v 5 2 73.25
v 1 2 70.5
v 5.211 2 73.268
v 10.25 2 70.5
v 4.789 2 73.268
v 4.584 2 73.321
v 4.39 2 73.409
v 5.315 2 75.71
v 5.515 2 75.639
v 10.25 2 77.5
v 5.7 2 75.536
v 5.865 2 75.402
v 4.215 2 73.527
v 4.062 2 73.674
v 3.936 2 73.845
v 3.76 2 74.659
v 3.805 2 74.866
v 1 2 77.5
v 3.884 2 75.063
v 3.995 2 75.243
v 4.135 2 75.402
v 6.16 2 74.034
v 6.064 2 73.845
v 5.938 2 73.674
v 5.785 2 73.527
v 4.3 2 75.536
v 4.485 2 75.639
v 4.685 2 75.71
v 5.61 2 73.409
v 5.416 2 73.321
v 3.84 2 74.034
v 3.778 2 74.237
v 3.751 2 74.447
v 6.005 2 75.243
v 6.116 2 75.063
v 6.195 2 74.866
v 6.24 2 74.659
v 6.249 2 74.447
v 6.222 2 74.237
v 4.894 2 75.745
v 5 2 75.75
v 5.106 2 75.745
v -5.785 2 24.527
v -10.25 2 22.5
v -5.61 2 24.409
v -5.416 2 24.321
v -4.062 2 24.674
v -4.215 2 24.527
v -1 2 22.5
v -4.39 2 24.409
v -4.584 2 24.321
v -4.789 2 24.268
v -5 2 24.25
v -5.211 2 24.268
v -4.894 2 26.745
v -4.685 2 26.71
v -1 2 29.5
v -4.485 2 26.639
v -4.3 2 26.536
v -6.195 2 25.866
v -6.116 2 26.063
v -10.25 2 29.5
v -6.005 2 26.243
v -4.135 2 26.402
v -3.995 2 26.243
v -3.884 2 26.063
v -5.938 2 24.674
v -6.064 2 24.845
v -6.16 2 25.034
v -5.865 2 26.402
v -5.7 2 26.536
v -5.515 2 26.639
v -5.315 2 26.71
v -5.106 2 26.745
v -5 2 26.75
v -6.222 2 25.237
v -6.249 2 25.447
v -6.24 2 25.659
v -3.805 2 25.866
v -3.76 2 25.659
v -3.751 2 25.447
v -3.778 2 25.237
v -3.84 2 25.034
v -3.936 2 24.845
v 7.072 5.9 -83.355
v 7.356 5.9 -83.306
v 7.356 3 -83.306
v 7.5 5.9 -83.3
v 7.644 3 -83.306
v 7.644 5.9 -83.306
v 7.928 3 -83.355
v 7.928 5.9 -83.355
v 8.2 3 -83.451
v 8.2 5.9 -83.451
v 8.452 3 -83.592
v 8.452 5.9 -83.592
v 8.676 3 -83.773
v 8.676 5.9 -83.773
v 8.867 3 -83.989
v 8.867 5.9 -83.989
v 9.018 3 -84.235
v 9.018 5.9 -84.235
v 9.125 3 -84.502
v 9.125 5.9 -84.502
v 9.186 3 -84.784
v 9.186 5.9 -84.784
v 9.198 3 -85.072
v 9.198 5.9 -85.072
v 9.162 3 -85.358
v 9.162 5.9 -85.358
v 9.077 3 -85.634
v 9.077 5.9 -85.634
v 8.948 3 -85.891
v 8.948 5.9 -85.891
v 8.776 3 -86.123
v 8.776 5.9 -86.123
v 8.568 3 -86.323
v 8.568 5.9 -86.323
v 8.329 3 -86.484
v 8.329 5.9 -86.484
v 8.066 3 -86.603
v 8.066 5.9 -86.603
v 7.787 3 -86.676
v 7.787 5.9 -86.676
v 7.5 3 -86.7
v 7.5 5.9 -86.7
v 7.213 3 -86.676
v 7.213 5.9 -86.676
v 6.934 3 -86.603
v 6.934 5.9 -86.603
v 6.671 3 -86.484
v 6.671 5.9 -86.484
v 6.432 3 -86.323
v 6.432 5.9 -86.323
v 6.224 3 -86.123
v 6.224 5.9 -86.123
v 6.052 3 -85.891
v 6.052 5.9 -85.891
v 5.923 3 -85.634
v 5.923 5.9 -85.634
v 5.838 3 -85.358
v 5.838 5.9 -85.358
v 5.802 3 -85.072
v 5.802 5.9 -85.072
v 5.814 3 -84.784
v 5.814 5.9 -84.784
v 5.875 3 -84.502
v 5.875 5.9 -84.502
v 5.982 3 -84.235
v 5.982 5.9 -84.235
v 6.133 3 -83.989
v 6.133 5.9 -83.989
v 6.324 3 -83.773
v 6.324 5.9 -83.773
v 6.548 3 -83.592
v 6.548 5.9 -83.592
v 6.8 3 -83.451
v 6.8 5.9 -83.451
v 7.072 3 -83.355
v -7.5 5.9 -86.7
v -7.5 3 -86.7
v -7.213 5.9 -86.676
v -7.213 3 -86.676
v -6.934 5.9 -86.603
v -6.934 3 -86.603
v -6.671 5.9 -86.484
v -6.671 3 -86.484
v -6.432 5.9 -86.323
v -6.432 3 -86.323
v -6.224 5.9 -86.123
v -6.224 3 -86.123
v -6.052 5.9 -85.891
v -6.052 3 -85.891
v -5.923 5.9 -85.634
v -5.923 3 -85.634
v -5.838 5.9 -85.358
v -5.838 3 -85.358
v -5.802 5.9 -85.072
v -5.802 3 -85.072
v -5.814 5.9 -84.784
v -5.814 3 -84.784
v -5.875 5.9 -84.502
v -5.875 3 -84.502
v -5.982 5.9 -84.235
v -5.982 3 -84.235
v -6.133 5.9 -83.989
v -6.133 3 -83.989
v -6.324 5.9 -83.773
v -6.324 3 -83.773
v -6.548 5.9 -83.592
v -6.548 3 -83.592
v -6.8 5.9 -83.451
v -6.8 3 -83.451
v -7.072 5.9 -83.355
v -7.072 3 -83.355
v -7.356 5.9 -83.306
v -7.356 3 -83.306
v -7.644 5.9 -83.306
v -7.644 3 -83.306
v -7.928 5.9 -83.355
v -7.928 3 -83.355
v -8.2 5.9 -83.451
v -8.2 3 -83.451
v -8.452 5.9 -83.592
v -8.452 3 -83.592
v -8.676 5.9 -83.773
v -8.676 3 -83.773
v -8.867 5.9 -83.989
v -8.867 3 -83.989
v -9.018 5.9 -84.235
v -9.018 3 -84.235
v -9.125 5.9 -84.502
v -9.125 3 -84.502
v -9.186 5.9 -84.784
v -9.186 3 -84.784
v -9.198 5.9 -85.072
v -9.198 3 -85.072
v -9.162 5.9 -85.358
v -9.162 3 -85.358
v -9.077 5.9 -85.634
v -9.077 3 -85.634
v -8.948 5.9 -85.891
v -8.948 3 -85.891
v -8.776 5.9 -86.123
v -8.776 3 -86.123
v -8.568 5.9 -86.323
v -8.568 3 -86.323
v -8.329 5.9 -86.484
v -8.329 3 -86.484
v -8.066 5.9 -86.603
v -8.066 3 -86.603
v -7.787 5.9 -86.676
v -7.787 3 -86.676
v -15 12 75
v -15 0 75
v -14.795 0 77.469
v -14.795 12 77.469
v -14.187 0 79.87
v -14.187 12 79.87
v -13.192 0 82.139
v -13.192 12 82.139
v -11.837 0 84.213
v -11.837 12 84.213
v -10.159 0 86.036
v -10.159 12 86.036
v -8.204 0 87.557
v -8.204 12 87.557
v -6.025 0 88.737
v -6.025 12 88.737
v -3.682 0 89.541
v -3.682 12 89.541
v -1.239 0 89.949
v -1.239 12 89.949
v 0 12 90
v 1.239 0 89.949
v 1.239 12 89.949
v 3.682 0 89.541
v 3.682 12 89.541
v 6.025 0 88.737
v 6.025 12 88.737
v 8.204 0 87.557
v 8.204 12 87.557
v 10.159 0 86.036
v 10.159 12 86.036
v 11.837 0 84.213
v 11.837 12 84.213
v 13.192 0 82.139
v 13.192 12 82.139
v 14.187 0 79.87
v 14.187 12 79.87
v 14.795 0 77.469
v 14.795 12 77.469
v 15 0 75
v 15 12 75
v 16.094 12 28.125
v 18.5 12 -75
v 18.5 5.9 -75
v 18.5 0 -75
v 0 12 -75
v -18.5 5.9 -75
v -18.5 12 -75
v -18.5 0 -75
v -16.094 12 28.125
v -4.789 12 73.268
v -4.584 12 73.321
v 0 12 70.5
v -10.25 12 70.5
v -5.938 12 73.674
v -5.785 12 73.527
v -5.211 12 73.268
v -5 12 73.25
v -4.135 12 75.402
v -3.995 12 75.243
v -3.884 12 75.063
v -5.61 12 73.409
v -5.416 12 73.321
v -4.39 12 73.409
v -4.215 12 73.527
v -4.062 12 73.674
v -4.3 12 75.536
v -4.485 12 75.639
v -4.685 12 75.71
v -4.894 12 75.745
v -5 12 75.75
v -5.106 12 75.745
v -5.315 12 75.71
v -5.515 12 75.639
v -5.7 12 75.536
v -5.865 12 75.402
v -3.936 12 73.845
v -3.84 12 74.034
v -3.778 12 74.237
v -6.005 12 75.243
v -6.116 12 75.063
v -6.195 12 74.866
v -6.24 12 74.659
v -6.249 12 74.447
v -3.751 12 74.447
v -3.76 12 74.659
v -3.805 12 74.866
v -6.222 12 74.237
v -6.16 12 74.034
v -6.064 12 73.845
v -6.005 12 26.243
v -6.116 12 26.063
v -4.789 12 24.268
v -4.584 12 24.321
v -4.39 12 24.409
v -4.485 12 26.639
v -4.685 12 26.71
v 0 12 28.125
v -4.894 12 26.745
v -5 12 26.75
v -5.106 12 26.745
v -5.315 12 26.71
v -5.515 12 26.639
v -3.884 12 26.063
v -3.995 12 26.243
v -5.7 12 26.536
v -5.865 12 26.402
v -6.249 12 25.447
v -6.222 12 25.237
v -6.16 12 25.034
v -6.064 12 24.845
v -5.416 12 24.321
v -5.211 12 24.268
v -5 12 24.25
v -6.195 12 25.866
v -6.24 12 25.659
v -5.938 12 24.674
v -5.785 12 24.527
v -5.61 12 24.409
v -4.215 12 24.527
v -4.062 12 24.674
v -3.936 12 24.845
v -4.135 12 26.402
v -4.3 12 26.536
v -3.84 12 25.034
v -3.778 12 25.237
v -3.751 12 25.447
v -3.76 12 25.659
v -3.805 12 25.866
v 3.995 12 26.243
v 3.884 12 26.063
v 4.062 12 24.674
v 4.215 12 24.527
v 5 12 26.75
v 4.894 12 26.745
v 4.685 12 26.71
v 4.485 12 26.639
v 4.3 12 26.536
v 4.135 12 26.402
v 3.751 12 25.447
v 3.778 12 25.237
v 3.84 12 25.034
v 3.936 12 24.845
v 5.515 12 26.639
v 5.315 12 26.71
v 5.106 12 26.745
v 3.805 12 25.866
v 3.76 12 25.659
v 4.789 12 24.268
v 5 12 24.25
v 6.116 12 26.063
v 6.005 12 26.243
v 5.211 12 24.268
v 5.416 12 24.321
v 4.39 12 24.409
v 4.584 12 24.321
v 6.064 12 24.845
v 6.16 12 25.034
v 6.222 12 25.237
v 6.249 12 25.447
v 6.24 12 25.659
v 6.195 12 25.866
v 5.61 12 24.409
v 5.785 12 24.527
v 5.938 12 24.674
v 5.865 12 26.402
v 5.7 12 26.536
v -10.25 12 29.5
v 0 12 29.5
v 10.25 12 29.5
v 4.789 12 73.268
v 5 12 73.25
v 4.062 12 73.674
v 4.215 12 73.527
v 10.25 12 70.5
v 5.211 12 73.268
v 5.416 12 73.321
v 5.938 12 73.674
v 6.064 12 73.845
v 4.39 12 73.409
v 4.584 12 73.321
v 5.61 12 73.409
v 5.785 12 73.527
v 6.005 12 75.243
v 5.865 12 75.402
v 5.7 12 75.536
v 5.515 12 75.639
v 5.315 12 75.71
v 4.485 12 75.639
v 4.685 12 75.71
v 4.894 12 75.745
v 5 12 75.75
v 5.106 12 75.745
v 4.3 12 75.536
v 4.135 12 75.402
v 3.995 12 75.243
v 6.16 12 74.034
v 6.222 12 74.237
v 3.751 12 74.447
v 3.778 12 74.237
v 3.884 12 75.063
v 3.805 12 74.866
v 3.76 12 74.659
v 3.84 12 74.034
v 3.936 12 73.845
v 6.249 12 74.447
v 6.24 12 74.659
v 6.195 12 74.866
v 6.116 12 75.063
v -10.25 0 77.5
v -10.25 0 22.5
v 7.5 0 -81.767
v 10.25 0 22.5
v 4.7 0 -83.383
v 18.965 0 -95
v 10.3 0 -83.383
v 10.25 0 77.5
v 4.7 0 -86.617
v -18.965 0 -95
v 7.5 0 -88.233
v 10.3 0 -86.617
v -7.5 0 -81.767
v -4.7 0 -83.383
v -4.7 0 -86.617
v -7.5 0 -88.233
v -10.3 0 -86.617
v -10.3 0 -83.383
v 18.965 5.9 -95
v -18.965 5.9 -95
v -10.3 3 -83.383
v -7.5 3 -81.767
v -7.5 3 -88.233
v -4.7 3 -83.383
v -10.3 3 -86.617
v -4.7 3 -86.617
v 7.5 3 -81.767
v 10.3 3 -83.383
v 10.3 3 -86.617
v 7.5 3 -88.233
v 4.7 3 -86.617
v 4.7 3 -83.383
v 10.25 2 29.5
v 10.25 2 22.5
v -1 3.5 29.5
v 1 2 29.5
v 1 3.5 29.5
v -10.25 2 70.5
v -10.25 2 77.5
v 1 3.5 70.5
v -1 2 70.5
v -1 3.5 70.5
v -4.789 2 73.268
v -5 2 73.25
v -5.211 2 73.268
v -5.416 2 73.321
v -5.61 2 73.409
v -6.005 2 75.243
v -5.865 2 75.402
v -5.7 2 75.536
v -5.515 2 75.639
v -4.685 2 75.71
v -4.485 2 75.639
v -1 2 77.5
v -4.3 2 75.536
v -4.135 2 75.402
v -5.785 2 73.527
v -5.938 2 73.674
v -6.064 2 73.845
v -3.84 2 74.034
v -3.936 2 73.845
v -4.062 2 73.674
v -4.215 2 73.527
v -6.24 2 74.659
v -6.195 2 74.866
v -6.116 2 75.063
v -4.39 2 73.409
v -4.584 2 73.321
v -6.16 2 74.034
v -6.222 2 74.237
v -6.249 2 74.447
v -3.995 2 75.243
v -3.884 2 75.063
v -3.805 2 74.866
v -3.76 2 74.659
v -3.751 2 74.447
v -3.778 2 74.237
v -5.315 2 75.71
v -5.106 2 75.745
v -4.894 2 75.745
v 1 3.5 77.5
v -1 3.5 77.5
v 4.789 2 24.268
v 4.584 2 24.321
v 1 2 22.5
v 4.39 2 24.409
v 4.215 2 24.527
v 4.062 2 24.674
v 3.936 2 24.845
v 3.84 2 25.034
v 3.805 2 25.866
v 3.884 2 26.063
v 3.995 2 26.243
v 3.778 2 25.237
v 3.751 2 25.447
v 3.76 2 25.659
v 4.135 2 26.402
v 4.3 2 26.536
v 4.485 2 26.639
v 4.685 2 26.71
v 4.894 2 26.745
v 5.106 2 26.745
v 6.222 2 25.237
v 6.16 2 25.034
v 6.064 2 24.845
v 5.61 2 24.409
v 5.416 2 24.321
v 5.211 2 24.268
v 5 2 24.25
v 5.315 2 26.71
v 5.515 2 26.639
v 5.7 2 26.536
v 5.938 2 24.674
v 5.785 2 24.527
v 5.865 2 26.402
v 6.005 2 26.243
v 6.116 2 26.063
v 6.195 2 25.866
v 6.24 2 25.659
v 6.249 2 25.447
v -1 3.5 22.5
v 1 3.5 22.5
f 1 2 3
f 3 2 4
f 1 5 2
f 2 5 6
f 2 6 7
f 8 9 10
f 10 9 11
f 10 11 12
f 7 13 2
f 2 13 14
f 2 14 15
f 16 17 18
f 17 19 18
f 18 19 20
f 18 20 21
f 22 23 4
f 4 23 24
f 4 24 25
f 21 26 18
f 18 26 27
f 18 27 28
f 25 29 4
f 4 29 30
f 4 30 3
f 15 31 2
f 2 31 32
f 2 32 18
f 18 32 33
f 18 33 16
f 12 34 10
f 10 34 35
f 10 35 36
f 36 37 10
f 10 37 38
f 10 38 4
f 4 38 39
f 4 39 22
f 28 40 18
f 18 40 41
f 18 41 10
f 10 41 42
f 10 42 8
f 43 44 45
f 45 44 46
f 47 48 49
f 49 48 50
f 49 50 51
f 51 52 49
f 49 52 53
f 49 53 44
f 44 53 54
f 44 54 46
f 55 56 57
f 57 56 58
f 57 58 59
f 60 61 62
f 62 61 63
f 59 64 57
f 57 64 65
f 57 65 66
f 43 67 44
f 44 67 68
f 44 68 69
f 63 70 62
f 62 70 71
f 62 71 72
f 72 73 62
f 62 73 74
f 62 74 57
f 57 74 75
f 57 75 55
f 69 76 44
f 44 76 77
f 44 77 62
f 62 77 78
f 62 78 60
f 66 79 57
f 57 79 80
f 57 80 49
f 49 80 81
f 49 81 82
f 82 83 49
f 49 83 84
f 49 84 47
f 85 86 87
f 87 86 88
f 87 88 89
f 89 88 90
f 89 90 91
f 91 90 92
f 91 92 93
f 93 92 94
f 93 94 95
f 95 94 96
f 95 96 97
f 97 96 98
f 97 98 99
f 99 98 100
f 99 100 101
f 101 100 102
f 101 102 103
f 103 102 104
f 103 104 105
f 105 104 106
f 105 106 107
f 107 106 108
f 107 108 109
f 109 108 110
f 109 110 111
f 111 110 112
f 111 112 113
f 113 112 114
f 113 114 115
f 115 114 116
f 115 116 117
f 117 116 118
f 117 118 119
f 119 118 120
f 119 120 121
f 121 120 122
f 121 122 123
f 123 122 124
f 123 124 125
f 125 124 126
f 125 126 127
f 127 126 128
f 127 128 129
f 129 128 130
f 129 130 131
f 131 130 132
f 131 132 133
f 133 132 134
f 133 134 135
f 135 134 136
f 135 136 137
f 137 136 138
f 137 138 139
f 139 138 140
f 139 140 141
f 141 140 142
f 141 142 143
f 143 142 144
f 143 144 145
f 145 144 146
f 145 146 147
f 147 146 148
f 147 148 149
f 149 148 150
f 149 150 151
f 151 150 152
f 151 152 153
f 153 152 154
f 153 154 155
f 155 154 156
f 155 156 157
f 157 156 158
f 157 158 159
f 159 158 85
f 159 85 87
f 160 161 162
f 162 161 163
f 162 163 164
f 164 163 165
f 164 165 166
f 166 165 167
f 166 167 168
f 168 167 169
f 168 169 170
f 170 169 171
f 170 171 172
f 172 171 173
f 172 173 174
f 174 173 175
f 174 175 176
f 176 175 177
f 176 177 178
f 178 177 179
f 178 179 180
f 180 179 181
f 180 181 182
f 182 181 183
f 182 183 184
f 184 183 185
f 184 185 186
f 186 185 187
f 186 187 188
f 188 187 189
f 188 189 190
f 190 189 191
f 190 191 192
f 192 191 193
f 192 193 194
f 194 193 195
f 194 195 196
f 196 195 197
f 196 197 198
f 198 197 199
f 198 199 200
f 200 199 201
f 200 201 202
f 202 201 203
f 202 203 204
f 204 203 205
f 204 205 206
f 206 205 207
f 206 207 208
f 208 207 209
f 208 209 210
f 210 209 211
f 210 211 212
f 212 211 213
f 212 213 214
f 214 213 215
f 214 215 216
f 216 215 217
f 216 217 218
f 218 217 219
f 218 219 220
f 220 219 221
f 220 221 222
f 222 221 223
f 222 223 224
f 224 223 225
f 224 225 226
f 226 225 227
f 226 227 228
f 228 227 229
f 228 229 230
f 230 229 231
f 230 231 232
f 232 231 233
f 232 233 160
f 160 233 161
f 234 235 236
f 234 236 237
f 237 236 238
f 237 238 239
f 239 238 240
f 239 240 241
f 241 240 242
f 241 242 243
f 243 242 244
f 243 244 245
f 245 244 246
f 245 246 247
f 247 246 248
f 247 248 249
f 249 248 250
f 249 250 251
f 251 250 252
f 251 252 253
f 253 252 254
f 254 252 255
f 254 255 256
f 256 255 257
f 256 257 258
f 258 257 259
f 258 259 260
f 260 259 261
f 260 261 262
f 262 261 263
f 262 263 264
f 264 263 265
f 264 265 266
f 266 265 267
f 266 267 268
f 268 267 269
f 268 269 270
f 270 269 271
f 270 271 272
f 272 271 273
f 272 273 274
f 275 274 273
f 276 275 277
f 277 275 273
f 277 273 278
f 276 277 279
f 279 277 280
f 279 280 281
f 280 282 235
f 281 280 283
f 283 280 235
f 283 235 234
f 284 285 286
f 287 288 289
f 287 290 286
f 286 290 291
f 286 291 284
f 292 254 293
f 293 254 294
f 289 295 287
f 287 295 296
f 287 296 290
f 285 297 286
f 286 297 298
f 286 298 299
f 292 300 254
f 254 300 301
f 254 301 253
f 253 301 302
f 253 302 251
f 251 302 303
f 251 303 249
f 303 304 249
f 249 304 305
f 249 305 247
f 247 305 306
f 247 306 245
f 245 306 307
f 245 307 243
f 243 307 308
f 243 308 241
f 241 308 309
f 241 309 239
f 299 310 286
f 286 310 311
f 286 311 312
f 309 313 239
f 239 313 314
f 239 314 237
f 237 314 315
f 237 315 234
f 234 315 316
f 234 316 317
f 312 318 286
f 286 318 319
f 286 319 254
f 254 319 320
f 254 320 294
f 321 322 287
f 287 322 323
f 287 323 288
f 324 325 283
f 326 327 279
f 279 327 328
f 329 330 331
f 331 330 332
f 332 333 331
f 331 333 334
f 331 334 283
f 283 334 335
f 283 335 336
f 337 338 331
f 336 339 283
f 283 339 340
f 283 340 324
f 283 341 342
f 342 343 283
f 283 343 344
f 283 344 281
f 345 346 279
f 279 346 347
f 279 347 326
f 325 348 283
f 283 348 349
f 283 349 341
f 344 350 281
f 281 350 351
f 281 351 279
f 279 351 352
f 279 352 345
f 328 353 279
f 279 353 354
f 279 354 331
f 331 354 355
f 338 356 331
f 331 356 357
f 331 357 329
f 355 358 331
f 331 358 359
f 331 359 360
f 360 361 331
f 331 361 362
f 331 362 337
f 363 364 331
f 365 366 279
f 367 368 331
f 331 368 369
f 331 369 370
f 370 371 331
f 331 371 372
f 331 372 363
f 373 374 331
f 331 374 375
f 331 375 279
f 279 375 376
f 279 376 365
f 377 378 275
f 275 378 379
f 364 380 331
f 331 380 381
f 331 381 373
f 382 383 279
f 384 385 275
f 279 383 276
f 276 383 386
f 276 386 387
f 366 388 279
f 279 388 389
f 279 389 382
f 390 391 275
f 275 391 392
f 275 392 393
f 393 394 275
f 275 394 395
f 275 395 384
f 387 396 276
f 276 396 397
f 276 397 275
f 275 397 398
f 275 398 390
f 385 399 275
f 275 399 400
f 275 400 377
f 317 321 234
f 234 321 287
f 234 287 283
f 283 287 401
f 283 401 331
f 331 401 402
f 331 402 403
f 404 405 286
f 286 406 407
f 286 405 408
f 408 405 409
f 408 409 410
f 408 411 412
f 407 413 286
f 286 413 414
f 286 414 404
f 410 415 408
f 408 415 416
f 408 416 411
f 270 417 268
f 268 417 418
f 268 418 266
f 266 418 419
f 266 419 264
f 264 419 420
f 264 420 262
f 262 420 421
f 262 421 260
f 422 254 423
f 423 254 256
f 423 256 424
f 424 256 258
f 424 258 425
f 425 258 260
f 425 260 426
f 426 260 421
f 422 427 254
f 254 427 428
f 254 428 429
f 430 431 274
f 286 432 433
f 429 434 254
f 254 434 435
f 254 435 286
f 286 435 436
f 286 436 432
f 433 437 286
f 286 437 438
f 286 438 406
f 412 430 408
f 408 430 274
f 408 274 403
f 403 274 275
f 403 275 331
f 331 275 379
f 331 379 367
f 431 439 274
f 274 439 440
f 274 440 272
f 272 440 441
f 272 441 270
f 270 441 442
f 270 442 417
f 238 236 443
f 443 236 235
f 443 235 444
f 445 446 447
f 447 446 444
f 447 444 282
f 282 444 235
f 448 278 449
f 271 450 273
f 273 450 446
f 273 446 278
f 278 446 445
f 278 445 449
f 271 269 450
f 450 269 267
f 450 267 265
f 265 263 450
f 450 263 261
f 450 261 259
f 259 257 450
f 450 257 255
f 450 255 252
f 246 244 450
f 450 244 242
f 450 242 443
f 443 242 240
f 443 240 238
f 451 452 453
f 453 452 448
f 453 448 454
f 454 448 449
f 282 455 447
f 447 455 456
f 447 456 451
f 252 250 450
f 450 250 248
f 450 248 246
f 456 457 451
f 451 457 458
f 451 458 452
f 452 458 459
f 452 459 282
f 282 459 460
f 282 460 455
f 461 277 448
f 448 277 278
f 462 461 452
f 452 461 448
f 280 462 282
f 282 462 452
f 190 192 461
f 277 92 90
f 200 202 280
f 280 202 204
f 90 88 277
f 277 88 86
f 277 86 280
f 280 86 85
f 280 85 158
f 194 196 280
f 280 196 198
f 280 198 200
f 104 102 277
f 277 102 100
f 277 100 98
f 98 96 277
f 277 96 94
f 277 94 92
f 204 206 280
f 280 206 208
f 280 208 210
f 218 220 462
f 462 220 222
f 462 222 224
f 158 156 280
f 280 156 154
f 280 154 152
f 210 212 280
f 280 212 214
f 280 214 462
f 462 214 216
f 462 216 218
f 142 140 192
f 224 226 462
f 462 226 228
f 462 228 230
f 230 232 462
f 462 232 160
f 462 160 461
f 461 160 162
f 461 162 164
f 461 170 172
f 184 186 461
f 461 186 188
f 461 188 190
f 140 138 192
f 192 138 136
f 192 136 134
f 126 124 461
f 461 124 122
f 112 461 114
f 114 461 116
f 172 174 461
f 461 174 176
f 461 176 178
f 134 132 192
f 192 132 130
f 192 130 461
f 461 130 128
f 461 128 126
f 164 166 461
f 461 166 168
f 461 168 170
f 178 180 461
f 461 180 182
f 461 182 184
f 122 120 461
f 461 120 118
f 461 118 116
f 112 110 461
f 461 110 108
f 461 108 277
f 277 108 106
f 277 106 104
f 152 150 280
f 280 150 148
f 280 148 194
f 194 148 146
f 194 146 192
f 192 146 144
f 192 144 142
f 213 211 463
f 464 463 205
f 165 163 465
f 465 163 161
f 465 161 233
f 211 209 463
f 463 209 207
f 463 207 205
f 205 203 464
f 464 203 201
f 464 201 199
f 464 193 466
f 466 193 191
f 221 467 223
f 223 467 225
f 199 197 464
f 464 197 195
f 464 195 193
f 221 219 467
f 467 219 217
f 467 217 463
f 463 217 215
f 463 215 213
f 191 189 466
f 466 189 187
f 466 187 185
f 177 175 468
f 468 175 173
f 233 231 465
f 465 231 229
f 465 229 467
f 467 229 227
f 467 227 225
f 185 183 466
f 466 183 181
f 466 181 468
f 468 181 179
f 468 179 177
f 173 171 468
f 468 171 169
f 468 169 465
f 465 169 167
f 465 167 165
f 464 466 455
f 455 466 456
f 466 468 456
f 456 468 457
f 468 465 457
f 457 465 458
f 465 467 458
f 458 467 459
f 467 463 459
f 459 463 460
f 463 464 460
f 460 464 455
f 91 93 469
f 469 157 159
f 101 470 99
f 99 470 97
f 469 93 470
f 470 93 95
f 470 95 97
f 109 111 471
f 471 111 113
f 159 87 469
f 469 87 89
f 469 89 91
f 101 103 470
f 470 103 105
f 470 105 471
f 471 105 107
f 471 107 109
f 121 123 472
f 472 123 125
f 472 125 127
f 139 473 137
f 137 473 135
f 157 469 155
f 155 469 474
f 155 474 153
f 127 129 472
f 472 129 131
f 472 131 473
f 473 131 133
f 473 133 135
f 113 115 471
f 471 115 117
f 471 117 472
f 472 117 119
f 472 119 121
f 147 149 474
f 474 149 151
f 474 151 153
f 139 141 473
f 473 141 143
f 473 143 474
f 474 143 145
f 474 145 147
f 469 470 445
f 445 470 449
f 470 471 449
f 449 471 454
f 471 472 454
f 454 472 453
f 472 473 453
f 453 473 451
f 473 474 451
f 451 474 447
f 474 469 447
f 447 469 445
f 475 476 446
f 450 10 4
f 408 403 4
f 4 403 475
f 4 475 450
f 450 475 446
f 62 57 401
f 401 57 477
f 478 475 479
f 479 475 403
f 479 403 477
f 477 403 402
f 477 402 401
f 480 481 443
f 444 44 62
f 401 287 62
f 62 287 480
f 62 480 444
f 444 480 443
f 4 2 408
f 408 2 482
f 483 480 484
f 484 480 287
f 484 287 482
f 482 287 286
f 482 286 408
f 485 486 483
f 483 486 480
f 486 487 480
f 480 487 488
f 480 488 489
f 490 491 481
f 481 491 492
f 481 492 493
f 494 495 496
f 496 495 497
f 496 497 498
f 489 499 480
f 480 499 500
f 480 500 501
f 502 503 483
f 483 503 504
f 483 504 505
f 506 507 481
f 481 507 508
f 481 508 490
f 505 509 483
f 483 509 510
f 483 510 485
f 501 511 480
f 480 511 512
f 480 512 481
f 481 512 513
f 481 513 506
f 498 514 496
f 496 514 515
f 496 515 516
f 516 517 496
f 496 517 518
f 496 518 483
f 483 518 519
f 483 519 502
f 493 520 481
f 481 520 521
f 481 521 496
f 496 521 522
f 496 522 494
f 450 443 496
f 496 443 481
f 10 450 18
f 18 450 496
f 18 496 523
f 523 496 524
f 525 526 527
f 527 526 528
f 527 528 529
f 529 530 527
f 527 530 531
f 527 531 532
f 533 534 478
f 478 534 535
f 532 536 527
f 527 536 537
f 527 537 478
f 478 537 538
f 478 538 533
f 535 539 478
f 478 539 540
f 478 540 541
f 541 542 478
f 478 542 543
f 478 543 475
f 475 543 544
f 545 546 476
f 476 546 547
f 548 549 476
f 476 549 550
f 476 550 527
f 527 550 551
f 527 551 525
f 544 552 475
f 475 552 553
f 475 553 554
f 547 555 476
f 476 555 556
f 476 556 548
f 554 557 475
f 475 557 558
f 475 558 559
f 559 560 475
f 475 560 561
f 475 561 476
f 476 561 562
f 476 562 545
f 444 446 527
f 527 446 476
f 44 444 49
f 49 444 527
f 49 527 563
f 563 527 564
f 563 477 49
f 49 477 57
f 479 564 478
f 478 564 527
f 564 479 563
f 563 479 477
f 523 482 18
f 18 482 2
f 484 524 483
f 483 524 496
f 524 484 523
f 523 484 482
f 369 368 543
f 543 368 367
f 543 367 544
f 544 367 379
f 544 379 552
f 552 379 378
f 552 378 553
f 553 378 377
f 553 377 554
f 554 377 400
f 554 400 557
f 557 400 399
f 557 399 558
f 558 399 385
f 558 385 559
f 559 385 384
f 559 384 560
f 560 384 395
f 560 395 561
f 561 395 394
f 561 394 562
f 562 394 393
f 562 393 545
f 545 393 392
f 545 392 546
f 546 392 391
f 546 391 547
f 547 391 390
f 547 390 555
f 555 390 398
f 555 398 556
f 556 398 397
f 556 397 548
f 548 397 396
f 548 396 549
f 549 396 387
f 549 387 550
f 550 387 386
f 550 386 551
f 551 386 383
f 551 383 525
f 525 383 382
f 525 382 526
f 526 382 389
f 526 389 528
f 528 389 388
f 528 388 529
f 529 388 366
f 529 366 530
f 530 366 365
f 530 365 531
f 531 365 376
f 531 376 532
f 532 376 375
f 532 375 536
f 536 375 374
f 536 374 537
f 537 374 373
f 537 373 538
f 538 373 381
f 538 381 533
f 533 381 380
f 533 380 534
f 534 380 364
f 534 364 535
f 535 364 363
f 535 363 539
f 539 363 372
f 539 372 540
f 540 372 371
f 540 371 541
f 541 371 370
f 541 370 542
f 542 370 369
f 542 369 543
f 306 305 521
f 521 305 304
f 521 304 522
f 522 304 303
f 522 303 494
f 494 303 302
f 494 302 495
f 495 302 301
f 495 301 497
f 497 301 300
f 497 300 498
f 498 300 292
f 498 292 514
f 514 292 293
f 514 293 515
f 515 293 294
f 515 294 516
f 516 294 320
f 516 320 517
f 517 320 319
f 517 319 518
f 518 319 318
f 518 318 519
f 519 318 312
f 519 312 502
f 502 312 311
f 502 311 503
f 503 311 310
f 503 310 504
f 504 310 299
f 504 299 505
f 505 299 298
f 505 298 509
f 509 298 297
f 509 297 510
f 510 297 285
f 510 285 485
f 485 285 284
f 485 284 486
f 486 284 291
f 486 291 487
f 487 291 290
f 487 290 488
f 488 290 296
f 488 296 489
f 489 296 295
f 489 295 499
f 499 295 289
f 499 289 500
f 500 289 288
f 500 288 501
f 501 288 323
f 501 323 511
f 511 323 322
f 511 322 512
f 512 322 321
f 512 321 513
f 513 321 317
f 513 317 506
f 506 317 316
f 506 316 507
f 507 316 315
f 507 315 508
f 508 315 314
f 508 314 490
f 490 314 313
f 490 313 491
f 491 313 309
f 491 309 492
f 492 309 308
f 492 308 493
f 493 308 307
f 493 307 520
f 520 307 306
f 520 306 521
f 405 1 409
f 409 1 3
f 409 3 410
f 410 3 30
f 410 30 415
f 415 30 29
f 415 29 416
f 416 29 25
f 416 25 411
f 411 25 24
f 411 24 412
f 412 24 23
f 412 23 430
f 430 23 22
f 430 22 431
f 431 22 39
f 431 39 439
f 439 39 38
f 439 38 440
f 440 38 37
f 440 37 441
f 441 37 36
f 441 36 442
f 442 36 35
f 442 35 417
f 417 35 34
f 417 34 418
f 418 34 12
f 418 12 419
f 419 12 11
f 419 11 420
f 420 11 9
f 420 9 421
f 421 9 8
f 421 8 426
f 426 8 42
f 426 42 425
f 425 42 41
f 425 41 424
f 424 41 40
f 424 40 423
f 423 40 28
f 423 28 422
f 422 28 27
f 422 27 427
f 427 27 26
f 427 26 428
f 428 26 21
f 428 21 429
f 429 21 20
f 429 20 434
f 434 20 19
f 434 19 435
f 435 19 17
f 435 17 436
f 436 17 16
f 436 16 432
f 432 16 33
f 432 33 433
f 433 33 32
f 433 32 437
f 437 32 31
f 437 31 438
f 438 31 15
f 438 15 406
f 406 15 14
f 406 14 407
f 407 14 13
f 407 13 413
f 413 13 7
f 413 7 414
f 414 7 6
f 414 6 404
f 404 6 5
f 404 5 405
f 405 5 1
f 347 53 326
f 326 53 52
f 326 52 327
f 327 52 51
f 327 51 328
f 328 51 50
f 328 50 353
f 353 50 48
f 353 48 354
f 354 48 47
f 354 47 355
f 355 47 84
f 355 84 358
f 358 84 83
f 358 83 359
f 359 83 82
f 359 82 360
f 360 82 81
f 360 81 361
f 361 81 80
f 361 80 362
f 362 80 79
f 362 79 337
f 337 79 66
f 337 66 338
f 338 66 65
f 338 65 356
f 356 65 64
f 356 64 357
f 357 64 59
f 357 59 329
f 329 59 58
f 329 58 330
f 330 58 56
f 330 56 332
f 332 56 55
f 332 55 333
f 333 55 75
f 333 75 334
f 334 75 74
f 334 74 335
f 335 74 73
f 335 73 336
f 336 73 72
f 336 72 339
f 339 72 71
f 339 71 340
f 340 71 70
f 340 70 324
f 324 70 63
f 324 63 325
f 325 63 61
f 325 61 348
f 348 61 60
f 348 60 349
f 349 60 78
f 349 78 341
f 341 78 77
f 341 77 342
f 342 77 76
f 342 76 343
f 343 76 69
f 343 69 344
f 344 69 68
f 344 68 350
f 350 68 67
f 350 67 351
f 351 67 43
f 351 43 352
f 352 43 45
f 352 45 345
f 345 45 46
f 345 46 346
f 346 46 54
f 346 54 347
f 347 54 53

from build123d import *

# Parameters (mm, degrees)
BOSS_EXTRUDE1_DEPTH = 12
BOSS_EXTRUDE2_DEPTH = 5.9
SKETCH3_R           = 1.7
CUT_EXTRUDE1_DEPTH  = 5.9
CUT_EXTRUDE2_DEPTH  = 3
SKETCH5_W           = 20.5
SKETCH5_H           = 41
CUT_EXTRUDE3_DEPTH  = 12
SKETCH6_W           = 20.5
SKETCH6_H           = 55
CUT_EXTRUDE4_DEPTH  = 2
SKETCH7_W           = 2
SKETCH7_H           = 7
CUT_EXTRUDE5_DEPTH  = 1.5
SKETCH8_R           = 1.25
CUT_EXTRUDE6_DEPTH  = 12


with BuildPart() as part:
    # Sketch1 → Boss-Extrude1 (new body)
    with BuildSketch(Plane(origin=(0, 0, 0), x_dir=(1, 0, 0), z_dir=(0, 1, 0))):
        with BuildLine():
            Line((18.5, 75), (-18.5, 75))
            Line((-18.5, 75), (-15, -75))
            ThreePointArc((-15, -75), (0, -90), (15, -75))
            Line((15, -75), (18.5, 75))
        make_face()
    extrude(amount=BOSS_EXTRUDE1_DEPTH)

    # Sketch2 → Boss-Extrude2 (add)
    with BuildSketch(Plane.XZ):
        Polygon((-18.965, -95), (18.965, -95), (18.5, -75), (-18.5, -75), align=None)
        with BuildLine():
            Line((-18.5, -75), (18.5, -75))
            Line((18.5, -75), (15, 75))
            ThreePointArc((15, 75), (0, 90), (-15, 75))
            Line((-15, 75), (-18.5, -75))
        make_face()
    extrude(amount=-BOSS_EXTRUDE2_DEPTH)

    # Sketch3 → Cut-Extrude1 (cut)
    with BuildSketch(Plane.XZ):
        with Locations((-7.5, -85)):
            Circle(SKETCH3_R)
        with Locations((7.5, -85)):
            Circle(SKETCH3_R)
    extrude(amount=-CUT_EXTRUDE1_DEPTH, mode=Mode.SUBTRACT)

    # Sketch4 → Cut-Extrude2 (cut)
    with BuildSketch(Plane.XZ):
        Polygon((-7.5, -81.766838493), (-10.3, -83.383419246), (-10.3, -86.616580754), (-7.5, -88.233161507), (-4.7, -86.616580754), (-4.7, -83.383419246), align=None)
        Polygon((7.5, -81.766838493), (4.7, -83.383419246), (4.7, -86.616580754), (7.5, -88.233161507), (10.3, -86.616580754), (10.3, -83.383419246), align=None)
    extrude(amount=-CUT_EXTRUDE2_DEPTH, mode=Mode.SUBTRACT)

    # Sketch5 → Cut-Extrude3 (cut)
    with BuildSketch(Plane.XZ):
        with Locations((0, 50)):
            Rectangle(SKETCH5_W, SKETCH5_H)
    extrude(amount=-CUT_EXTRUDE3_DEPTH, mode=Mode.SUBTRACT)

    # Sketch6 → Cut-Extrude4 (cut)
    with BuildSketch(Plane.XZ):
        with Locations((0, 50)):
            Rectangle(SKETCH6_W, SKETCH6_H)
    extrude(amount=-CUT_EXTRUDE4_DEPTH, mode=Mode.SUBTRACT)

    # Sketch7 → Cut-Extrude5 (cut)
    with BuildSketch(Plane.XZ.offset(-2)):
        with Locations((0, 74)):
            Rectangle(SKETCH7_W, SKETCH7_H)
        with Locations((0, 26)):
            Rectangle(SKETCH7_W, SKETCH7_H)
    extrude(amount=-CUT_EXTRUDE5_DEPTH, mode=Mode.SUBTRACT)

    # Sketch8 → Cut-Extrude6 (cut)
    with BuildSketch(Plane.XZ.offset(-2)):
        with Locations((-5, 74.5)):
            Circle(SKETCH8_R)
        with Locations((5, 74.5)):
            Circle(SKETCH8_R)
        with Locations((5, 25.5)):
            Circle(SKETCH8_R)
        with Locations((-5, 25.5)):
            Circle(SKETCH8_R)
    extrude(amount=-CUT_EXTRUDE6_DEPTH, mode=Mode.SUBTRACT)


solid = part.part
